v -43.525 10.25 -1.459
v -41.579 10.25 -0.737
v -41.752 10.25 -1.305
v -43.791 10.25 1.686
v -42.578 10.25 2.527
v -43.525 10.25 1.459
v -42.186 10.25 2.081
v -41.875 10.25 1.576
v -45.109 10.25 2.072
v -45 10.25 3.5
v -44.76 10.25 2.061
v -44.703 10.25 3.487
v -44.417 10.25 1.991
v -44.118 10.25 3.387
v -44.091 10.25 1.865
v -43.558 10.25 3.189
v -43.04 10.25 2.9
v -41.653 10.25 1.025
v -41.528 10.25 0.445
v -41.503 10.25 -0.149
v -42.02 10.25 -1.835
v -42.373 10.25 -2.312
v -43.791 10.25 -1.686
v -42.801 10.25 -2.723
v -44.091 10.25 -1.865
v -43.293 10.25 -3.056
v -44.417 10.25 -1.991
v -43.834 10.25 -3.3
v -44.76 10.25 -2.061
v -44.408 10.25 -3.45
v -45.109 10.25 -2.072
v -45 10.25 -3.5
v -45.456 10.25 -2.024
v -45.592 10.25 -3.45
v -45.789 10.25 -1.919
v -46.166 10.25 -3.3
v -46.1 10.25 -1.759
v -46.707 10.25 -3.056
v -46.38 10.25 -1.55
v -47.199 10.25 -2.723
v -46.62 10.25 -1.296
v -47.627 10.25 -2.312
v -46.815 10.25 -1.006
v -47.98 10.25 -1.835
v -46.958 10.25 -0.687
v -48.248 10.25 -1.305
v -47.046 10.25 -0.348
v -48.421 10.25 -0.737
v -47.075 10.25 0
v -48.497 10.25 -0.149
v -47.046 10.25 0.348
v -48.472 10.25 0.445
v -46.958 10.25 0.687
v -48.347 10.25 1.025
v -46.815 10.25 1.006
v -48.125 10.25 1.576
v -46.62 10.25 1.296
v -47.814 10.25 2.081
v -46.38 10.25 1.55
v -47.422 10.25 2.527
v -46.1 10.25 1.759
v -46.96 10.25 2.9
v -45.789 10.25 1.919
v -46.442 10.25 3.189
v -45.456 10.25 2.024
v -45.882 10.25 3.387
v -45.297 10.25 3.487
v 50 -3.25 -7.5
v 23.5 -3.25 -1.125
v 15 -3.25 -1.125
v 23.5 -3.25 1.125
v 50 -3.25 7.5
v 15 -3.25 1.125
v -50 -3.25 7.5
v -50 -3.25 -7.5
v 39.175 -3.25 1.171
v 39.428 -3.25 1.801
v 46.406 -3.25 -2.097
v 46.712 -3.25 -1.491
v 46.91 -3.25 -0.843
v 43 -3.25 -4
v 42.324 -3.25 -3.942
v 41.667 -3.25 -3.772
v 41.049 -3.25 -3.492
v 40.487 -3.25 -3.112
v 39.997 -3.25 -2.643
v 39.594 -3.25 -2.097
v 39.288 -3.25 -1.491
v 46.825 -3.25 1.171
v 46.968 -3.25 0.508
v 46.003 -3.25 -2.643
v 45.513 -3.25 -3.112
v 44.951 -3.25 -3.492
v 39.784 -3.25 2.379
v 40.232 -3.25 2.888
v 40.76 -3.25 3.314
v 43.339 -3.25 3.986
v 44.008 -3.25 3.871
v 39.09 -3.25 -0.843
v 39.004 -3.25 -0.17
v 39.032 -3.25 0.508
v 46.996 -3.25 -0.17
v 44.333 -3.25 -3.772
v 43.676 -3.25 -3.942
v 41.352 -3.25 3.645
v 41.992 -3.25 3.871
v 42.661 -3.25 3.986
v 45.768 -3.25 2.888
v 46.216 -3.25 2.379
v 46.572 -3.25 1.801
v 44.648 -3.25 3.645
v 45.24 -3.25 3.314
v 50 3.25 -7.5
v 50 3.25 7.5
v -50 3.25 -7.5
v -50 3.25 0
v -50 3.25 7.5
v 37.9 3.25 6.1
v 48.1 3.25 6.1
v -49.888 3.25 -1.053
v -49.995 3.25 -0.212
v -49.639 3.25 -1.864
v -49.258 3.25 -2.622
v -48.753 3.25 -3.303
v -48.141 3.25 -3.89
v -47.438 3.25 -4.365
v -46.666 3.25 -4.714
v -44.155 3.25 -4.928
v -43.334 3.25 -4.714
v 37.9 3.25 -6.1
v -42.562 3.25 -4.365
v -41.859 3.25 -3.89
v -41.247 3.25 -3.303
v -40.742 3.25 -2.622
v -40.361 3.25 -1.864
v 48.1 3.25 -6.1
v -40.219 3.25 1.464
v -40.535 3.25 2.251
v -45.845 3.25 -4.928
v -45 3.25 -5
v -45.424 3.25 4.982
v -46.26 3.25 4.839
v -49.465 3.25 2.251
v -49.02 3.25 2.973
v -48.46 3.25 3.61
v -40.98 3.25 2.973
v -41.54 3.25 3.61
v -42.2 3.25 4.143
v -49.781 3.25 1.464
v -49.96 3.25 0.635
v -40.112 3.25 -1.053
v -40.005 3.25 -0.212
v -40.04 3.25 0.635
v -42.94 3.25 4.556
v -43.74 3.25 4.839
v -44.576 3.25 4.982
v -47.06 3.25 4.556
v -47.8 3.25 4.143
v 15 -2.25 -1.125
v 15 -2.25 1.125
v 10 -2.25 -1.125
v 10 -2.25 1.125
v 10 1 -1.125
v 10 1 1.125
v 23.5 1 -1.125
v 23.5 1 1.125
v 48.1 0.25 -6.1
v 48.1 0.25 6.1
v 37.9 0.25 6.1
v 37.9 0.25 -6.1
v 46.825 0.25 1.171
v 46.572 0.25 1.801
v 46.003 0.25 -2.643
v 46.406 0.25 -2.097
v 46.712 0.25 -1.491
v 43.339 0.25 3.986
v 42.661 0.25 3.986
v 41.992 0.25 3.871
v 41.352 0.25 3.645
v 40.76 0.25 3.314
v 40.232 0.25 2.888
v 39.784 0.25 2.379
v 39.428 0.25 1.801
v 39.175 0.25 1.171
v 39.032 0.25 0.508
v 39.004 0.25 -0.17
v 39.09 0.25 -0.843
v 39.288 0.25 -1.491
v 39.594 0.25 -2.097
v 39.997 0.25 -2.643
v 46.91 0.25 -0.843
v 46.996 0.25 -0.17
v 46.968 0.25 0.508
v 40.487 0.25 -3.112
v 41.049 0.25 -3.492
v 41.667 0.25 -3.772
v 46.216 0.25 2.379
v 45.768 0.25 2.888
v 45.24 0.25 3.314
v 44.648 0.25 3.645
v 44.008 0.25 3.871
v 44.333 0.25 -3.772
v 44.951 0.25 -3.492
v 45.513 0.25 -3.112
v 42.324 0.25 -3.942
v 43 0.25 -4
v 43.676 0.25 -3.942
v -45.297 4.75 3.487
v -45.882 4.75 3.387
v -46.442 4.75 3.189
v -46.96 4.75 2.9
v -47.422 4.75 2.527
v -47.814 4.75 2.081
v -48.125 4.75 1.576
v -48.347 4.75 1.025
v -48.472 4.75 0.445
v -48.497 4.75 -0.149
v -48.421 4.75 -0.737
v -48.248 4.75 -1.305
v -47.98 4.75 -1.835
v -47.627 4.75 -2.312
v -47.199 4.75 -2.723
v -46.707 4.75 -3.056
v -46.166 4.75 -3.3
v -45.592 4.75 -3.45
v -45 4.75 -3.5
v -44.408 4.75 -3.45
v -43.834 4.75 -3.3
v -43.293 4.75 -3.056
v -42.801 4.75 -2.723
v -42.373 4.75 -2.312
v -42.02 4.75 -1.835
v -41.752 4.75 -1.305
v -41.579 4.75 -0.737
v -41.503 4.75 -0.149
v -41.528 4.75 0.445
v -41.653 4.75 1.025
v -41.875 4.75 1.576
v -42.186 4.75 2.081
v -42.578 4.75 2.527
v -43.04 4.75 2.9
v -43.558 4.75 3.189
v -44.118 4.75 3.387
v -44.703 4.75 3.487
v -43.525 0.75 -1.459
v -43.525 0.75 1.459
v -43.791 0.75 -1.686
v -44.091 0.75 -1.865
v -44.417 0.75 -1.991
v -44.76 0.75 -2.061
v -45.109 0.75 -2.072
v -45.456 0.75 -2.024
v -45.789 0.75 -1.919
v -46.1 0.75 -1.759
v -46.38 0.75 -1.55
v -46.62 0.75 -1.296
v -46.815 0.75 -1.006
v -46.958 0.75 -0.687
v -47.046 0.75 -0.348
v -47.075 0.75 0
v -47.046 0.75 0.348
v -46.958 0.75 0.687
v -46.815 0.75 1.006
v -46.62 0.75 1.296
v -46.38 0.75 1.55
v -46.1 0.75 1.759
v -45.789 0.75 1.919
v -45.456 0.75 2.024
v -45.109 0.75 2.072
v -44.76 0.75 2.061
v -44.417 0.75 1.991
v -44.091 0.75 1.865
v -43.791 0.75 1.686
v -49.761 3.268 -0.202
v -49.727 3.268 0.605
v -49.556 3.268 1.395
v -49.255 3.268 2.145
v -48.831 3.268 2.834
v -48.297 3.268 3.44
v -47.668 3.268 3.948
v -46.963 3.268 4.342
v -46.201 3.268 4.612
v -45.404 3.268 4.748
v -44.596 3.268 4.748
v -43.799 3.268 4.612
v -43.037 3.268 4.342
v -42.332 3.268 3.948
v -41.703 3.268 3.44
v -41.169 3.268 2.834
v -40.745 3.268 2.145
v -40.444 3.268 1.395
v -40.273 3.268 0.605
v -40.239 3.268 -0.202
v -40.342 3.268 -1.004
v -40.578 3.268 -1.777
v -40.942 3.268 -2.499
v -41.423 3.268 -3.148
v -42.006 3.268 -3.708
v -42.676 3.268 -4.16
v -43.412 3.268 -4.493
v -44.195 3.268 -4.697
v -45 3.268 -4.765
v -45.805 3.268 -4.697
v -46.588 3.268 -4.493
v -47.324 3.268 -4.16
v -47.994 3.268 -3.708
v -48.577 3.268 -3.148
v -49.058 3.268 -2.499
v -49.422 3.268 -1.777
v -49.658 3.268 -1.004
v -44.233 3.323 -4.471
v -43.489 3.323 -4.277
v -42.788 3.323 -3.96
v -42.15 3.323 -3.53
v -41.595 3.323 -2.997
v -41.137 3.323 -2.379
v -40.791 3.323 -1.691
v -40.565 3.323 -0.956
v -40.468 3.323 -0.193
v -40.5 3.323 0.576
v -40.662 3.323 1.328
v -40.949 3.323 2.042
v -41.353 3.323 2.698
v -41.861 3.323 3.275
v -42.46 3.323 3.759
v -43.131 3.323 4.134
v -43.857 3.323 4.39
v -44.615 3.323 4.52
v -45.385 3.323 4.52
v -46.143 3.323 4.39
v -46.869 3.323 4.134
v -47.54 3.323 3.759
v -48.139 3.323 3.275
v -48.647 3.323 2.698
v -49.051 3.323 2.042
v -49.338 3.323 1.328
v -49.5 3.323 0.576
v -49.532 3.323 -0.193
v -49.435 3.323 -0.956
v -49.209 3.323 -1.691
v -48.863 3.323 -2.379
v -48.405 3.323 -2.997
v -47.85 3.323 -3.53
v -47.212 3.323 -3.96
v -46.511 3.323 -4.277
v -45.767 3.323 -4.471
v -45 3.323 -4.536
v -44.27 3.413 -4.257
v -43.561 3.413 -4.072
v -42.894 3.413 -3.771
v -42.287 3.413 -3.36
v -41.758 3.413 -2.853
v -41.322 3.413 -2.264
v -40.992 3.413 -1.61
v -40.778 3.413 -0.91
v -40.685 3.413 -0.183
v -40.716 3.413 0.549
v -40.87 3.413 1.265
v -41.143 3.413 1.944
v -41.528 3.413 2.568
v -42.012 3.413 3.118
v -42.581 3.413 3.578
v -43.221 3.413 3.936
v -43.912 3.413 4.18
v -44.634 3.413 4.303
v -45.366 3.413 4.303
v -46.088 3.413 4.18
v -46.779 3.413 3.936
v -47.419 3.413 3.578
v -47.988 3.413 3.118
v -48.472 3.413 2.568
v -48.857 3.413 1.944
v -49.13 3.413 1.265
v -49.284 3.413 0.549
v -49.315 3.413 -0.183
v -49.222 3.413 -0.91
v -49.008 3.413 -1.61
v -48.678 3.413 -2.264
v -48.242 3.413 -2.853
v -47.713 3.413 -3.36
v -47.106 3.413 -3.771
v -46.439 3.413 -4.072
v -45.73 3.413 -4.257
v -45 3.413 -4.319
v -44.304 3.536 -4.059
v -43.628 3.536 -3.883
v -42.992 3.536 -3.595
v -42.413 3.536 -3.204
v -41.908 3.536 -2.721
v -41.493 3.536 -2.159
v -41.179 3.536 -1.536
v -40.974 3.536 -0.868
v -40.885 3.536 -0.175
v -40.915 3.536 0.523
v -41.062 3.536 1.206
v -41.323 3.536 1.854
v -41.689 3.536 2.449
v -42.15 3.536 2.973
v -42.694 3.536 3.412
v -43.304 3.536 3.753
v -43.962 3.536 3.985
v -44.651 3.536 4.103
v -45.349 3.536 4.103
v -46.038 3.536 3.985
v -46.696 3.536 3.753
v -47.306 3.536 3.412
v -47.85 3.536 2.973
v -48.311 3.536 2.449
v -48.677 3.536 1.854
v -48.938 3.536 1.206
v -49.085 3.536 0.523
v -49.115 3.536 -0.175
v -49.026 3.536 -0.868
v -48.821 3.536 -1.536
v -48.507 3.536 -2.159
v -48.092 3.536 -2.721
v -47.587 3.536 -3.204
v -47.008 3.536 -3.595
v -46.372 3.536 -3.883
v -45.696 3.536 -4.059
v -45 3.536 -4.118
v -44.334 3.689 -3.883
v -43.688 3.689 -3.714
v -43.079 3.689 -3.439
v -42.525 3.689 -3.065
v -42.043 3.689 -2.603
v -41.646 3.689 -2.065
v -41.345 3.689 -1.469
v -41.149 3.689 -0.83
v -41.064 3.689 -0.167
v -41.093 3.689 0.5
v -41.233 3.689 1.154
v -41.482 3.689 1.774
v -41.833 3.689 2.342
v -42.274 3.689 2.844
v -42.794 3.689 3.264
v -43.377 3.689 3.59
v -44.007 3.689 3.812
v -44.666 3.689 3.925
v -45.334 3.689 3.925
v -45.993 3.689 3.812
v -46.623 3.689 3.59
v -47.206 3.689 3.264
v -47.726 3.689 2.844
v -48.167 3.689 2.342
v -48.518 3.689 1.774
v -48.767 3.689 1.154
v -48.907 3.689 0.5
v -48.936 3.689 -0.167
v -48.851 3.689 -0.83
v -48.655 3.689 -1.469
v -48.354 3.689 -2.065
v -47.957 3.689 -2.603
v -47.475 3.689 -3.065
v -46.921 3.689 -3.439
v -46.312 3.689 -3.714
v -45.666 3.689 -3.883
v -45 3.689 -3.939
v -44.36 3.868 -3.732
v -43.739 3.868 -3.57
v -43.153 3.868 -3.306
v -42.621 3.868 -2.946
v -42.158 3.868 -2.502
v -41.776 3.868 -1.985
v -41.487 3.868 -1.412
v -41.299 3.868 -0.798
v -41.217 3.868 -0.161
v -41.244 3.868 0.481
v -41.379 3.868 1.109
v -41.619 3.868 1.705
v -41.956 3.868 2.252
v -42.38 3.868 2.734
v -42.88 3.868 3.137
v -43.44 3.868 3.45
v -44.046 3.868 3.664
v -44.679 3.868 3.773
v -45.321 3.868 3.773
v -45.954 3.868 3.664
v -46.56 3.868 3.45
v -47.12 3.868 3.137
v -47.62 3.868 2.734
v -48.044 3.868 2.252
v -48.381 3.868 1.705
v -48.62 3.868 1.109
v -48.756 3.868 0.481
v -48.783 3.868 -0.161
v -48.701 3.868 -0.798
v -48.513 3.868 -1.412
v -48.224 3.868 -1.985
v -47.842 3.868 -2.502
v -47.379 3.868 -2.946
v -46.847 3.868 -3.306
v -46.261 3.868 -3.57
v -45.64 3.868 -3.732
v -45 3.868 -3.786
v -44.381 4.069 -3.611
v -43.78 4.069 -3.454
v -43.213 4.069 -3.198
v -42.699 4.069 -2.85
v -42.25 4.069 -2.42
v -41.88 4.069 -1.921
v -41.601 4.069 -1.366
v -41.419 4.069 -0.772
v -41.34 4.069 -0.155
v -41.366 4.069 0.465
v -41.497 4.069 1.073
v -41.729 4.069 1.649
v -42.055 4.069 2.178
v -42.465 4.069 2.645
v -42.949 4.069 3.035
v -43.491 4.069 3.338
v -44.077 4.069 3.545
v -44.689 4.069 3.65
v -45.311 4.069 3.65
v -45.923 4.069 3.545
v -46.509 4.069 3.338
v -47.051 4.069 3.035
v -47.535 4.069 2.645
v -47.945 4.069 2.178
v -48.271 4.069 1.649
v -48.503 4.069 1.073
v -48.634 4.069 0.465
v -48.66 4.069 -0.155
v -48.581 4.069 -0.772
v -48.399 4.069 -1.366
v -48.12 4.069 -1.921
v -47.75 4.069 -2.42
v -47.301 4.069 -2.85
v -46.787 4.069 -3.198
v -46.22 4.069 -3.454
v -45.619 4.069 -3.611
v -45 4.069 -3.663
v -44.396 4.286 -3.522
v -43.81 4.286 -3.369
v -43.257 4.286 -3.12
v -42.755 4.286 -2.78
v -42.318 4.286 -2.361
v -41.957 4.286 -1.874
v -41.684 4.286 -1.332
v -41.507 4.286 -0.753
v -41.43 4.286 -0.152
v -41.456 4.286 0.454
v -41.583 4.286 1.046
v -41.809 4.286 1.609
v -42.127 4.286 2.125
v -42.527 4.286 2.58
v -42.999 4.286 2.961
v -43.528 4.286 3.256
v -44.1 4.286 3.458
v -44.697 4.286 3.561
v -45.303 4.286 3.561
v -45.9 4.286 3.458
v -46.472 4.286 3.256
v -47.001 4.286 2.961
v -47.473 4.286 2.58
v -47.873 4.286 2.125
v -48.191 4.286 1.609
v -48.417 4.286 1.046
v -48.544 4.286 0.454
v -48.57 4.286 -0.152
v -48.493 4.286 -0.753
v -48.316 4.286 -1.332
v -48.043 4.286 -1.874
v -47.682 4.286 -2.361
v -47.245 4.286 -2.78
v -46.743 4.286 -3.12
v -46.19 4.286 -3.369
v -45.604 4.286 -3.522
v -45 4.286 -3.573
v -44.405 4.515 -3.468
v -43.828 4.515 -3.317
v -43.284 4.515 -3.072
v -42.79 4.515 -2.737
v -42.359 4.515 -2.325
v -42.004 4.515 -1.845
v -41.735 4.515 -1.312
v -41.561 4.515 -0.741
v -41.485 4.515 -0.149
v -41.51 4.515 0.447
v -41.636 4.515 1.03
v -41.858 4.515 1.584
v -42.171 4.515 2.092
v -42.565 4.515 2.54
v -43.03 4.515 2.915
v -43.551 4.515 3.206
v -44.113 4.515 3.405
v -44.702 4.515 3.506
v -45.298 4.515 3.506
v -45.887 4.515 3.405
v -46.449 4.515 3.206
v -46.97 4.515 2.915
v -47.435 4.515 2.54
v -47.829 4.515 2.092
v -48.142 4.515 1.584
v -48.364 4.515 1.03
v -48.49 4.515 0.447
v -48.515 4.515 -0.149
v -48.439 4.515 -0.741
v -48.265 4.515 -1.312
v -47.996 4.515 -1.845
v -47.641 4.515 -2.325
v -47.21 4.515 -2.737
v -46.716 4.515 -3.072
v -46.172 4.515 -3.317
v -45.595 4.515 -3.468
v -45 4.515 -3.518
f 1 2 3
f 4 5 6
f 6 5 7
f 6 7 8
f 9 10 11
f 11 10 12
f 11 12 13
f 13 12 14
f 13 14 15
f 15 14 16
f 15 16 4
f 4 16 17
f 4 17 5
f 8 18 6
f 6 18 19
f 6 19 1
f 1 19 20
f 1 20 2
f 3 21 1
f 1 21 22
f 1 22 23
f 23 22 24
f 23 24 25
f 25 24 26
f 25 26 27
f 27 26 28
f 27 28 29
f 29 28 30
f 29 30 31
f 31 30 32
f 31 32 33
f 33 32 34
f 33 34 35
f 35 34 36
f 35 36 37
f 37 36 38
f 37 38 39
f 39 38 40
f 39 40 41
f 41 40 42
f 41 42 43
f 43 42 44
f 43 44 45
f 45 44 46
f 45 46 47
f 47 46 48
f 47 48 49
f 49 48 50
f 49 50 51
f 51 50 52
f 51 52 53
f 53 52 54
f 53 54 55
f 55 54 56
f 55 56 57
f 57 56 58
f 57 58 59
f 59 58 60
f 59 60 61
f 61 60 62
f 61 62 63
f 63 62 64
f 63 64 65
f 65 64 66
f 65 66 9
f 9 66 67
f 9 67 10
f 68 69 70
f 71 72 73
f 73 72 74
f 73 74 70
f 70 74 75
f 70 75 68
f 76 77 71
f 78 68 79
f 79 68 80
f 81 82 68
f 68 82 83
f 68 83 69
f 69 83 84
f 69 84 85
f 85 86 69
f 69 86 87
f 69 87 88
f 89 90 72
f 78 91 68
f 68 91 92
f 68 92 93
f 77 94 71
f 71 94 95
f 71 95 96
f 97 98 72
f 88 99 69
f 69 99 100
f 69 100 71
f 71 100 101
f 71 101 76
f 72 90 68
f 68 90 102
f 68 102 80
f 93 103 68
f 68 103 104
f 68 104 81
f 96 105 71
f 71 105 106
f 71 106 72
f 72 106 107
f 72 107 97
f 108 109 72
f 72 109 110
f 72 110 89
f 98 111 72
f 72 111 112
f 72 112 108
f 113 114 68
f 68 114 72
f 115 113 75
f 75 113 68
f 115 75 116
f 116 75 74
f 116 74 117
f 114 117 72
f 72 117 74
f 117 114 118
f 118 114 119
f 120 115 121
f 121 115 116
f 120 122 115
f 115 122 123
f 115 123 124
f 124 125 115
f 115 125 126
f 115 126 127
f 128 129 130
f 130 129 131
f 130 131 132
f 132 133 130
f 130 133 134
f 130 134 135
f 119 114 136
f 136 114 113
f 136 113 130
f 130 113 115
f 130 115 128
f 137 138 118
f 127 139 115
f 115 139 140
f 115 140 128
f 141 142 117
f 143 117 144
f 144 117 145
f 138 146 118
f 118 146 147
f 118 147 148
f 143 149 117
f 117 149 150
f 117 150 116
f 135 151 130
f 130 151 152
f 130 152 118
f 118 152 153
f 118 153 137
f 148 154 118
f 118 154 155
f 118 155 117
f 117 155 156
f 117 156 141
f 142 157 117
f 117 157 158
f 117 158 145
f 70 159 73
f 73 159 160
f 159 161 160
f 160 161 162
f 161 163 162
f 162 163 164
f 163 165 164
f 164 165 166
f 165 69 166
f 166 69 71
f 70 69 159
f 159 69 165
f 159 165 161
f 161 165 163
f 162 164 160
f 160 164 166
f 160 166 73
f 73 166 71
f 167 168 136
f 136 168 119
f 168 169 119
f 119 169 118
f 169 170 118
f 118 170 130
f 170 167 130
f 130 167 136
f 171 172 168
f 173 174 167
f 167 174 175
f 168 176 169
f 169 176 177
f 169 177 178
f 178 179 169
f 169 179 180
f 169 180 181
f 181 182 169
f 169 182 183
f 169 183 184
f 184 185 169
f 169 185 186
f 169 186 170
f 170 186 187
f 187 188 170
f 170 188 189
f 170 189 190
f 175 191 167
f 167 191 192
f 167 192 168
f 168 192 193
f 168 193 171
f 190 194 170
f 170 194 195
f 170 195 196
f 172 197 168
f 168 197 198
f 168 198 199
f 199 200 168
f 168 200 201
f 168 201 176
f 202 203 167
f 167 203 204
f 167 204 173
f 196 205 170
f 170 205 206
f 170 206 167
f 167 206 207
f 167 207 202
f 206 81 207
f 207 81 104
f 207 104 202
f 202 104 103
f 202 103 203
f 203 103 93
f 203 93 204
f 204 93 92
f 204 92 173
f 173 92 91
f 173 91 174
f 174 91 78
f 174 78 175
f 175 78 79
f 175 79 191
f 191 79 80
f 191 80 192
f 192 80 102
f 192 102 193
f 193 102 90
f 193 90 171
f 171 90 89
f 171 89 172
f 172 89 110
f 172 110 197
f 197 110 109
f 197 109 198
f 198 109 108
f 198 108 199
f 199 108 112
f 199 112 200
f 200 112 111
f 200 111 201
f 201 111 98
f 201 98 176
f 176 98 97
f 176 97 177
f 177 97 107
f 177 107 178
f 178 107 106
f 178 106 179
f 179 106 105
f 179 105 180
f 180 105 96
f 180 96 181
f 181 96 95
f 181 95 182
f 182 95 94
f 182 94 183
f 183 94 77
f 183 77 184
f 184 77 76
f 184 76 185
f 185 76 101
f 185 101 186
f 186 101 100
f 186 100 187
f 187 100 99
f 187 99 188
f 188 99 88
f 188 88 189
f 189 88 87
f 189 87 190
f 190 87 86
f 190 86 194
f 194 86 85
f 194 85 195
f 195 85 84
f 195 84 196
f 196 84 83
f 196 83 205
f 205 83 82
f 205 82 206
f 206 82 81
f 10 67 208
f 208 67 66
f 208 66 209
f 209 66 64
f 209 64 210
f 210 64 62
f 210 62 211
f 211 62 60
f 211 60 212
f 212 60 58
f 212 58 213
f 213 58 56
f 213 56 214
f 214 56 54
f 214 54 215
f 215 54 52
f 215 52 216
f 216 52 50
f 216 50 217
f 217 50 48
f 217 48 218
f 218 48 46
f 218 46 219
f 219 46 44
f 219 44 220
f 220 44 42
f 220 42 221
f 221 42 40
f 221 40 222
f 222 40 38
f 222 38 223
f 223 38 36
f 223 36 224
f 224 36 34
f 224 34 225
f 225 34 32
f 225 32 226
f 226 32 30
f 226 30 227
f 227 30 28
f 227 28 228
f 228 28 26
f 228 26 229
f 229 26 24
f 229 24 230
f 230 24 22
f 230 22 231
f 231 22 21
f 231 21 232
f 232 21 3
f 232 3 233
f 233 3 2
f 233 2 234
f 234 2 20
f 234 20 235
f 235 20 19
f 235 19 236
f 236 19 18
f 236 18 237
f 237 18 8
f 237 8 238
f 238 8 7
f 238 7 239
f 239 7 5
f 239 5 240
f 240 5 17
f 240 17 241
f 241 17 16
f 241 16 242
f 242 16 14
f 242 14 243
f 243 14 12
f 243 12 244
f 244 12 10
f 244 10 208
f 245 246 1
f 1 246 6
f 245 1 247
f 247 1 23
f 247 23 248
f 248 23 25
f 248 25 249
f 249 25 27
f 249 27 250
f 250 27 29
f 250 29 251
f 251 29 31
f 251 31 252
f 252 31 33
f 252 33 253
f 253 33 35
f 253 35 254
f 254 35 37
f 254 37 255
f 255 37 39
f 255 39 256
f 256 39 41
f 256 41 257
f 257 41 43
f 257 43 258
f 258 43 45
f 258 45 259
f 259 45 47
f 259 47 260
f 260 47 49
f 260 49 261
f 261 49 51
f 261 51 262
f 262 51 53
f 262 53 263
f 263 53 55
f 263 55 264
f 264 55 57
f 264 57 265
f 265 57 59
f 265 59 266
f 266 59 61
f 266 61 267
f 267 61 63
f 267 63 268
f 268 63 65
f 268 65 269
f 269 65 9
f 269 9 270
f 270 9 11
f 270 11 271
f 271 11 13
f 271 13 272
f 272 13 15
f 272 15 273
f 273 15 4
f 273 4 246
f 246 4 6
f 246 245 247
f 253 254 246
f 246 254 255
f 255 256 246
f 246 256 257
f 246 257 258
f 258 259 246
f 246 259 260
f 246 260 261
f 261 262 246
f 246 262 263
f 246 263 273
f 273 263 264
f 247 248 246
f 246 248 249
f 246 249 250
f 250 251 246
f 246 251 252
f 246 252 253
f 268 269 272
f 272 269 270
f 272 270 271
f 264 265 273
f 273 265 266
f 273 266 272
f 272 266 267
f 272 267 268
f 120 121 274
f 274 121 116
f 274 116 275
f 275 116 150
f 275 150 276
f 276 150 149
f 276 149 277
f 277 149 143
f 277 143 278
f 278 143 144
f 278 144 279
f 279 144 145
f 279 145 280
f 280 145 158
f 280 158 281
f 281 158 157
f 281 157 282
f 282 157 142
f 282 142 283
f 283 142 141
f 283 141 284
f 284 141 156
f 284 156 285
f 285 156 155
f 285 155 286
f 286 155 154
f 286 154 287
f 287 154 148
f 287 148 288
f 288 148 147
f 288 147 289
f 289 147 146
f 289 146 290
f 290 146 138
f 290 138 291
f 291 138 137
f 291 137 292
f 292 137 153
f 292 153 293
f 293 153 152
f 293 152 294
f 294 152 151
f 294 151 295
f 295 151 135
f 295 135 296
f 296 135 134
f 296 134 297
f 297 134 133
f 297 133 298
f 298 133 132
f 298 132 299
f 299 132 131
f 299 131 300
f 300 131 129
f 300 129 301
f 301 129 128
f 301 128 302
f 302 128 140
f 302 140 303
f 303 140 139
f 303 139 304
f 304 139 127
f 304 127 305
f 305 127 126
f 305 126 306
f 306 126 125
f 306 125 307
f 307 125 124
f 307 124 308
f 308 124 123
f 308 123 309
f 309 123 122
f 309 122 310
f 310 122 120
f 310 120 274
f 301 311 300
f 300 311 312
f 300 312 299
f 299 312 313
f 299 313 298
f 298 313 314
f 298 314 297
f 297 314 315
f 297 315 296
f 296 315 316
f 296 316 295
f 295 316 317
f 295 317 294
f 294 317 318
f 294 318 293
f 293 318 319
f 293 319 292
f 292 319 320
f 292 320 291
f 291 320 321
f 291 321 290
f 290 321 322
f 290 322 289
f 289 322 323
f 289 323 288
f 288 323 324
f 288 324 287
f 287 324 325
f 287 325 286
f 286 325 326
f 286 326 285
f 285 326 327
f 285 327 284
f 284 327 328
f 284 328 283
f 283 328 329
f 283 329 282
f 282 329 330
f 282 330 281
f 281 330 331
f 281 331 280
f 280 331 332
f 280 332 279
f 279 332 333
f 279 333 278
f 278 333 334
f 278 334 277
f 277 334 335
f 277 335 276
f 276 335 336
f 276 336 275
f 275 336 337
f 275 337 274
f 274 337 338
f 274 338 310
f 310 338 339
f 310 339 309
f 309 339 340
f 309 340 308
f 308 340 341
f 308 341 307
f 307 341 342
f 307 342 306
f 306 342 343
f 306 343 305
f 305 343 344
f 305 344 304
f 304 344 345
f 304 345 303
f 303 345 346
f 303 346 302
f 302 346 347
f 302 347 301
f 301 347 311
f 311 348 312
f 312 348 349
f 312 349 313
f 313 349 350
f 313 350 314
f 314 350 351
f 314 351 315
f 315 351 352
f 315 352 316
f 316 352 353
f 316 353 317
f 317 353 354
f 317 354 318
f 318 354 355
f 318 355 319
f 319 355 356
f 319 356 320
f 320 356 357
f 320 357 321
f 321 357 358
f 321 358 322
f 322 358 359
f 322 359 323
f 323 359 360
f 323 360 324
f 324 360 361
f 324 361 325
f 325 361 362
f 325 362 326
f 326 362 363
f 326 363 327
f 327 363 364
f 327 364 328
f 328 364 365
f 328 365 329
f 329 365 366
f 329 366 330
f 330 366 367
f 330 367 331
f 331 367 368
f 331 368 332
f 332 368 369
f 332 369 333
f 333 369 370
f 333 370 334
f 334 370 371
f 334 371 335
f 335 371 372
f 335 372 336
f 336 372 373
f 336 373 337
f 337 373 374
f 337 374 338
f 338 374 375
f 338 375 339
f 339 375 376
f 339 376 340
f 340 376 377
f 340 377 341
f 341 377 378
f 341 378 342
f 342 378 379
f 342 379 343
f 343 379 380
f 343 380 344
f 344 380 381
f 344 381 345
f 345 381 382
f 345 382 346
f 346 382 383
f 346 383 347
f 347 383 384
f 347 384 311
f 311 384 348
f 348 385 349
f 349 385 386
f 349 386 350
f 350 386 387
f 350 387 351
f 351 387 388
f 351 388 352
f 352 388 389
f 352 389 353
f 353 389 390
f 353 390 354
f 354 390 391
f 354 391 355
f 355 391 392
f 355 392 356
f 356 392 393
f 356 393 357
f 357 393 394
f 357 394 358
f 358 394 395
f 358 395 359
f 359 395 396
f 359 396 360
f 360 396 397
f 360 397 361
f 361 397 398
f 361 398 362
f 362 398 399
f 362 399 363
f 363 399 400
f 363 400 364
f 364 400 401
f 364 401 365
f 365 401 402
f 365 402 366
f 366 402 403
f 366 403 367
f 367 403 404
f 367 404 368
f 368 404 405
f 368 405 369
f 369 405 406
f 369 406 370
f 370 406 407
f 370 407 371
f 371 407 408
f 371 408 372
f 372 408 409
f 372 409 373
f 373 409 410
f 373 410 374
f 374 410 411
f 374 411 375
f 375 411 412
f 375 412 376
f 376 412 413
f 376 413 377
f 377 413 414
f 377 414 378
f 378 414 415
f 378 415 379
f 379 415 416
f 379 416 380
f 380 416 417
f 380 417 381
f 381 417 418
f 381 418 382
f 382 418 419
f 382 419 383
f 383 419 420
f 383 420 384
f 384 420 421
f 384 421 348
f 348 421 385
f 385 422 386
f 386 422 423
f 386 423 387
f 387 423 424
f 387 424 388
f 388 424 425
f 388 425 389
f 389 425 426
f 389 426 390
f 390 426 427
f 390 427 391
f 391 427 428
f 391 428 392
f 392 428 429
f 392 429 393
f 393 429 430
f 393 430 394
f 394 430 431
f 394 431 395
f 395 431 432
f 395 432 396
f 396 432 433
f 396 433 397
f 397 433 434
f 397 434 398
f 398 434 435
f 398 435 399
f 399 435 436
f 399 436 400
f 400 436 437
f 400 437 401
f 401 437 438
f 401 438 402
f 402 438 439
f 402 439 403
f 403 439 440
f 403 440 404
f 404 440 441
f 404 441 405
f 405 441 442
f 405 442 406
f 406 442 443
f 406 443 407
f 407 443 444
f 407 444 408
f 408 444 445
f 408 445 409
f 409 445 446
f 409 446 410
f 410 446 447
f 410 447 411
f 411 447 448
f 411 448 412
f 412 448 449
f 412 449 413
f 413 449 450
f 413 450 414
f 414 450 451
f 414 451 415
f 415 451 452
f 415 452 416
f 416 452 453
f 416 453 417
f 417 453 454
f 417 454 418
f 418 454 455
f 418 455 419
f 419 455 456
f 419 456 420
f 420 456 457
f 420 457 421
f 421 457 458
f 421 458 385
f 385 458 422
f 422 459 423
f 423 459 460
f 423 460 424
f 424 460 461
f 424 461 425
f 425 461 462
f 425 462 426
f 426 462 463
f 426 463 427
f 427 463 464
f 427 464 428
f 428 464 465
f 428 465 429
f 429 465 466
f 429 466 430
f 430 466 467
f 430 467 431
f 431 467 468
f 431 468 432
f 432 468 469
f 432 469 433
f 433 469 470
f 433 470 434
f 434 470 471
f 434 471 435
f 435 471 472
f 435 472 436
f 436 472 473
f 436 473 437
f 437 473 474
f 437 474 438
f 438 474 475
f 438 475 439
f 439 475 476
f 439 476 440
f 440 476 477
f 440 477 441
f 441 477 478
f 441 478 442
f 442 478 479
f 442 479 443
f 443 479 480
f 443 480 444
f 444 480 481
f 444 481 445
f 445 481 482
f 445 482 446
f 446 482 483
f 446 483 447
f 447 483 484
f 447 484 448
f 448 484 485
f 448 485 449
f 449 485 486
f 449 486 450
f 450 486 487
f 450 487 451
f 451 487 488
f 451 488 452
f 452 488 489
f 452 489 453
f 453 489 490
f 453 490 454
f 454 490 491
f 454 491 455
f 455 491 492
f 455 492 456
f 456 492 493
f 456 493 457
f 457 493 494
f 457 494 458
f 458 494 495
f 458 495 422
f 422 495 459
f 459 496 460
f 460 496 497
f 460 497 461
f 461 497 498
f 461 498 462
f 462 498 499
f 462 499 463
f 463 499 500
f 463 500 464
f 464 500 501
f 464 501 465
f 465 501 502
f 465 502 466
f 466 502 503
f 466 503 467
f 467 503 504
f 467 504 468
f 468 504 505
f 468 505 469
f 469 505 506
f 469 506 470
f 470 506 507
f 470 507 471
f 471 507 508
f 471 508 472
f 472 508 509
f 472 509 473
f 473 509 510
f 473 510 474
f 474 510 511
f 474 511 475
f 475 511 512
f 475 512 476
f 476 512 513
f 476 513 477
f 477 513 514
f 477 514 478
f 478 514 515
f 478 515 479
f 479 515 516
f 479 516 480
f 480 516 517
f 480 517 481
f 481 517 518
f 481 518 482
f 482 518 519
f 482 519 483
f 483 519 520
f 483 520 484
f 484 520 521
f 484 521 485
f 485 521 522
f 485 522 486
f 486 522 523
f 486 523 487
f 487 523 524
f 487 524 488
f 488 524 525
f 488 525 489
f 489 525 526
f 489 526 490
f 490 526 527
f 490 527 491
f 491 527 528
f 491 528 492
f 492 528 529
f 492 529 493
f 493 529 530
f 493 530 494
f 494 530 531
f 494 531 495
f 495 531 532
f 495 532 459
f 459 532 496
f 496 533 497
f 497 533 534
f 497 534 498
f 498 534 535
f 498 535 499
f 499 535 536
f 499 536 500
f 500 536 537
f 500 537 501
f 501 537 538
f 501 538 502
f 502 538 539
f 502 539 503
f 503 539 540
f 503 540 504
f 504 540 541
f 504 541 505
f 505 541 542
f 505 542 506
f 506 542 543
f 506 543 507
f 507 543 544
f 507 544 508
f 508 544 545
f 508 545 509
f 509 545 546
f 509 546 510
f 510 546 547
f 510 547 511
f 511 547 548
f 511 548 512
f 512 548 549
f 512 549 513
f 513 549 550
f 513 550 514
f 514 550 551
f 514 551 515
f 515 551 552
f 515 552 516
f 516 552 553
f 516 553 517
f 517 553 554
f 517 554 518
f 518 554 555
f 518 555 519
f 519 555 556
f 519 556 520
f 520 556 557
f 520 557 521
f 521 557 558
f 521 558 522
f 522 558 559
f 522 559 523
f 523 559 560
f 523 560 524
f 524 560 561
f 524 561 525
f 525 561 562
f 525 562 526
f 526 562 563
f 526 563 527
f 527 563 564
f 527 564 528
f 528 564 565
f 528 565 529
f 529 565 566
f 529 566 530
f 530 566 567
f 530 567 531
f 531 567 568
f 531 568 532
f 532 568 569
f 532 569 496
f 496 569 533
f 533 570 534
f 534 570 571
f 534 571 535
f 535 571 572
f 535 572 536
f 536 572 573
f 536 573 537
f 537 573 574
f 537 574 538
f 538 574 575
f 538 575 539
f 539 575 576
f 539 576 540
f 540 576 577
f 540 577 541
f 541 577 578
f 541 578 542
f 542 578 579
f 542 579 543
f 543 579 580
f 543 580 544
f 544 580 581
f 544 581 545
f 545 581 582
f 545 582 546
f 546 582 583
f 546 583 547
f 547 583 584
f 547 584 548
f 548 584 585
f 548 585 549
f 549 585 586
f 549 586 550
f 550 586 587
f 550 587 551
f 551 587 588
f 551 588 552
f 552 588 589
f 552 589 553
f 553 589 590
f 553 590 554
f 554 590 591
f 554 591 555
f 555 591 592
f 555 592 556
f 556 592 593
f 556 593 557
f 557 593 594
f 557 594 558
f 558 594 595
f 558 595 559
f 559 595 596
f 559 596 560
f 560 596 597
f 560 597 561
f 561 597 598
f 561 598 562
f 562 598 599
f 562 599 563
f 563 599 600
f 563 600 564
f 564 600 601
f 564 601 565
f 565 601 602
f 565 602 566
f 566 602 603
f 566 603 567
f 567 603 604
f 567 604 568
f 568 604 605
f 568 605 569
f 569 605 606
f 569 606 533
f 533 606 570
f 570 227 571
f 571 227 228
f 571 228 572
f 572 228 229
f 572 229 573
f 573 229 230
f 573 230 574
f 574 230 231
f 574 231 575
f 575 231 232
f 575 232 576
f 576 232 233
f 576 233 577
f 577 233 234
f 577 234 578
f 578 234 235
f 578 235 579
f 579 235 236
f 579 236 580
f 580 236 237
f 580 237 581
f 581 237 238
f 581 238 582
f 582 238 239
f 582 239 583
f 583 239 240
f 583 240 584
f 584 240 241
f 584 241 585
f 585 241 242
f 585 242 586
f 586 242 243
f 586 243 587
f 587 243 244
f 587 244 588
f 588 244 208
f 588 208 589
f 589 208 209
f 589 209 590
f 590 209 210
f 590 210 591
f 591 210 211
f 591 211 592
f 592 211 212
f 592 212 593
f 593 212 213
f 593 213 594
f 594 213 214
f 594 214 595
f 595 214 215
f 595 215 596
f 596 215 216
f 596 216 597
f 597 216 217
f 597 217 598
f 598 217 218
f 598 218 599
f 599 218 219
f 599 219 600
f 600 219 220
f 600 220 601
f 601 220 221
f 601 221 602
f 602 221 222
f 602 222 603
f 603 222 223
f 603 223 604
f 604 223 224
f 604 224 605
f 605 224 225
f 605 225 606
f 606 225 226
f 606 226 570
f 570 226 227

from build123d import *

# Parameters (mm, degrees)
SKETCH2_W                = 100
SKETCH2_H                = 15
BOSS_EXTRUDE1_DEPTH      = 3.25
SKETCH15_W               = 8.5
SKETCH15_H               = 4.25
SKETCH15_W_2             = 5
SKETCH15_H_2             = 3.25
CUT_EXTRUDE8_DEPTH       = 1.125
SKETCH18_W               = 10.2
SKETCH18_H               = 12.2
CUT_EXTRUDE10_DEPTH      = 3
CUT_EXTRUDE11_DEPTH      = 51.975484304
CUT_EXTRUDE11_DEPTH_BACK = 51.975484304
SKETCH19_R               = 4
SKETCH20_R               = 3.5
BOSS_EXTRUDE2_DEPTH      = 7
CUT_EXTRUDE12_DEPTH      = 9.5
FILLET1_R                = 1.5


with BuildPart() as part:
    # Sketch2 → Boss-Extrude1 (new, symmetric)
    with BuildSketch(Plane(origin=(0, 0, 0), x_dir=(1, 0, 0), z_dir=(0, 1, 0))):
        Rectangle(SKETCH2_W, SKETCH2_H)
    extrude(amount=BOSS_EXTRUDE1_DEPTH, both=True)

    # Sketch15 → Cut-Extrude8 (cut, symmetric)
    with BuildSketch(Plane.XY):
        with Locations((19.25, -1.125)):
            Rectangle(SKETCH15_W, SKETCH15_H)
        with Locations((12.5, -0.625)):
            Rectangle(SKETCH15_W_2, SKETCH15_H_2)
    extrude(amount=CUT_EXTRUDE8_DEPTH, both=True, mode=Mode.SUBTRACT)

    # Sketch18 → Cut-Extrude10 (cut)
    with BuildSketch(Plane(origin=(0, 3.25, 0), x_dir=(1, 0, 0), z_dir=(0, 1, 0))):
        with Locations((43, 0)):
            Rectangle(SKETCH18_W, SKETCH18_H)
    extrude(amount=-CUT_EXTRUDE10_DEPTH, mode=Mode.SUBTRACT)

    # Sketch19 → Cut-Extrude11 (cut, two sides: drawn at the far end of the back side and taken through both)
    with BuildSketch(Plane.XZ.offset(3.25).offset(-CUT_EXTRUDE11_DEPTH_BACK)):
        with Locations(Location((43, 0, 0), (0, 0, 270))):
            Circle(SKETCH19_R)
    extrude(amount=CUT_EXTRUDE11_DEPTH + CUT_EXTRUDE11_DEPTH_BACK, mode=Mode.SUBTRACT)

    # Sketch20 → Boss-Extrude2 (add)
    with BuildSketch(Plane(origin=(0, 3.25, 0), x_dir=(1, 0, 0), z_dir=(0, 1, 0))):
        with Locations(Location((-45, 0, 0), (0, 0, 90))):
            Circle(SKETCH20_R)
    extrude(amount=BOSS_EXTRUDE2_DEPTH)

    # Sketch21 → Cut-Extrude12 (cut)
    with BuildSketch(Plane(origin=(0, 10.25, 0), x_dir=(1, 0, 0), z_dir=(0, 1, 0))):
        with BuildLine():
            Line((-43.525, -1.459451952), (-43.525, 1.459451952))
            ThreePointArc((-43.525, 1.459451952), (-47.075, 0), (-43.525, -1.459451952))
        make_face()
    extrude(amount=-CUT_EXTRUDE12_DEPTH, mode=Mode.SUBTRACT)

    # Fillet1
    fillet1_edges = [part.edges().sort_by_distance(p)[0] for p in [
        (-45, 3.25, 3.5),
    ]]
    fillet(fillet1_edges, radius=FILLET1_R - 0.0001)  # a hair under: the kernel refuses the full size


solid = part.part
